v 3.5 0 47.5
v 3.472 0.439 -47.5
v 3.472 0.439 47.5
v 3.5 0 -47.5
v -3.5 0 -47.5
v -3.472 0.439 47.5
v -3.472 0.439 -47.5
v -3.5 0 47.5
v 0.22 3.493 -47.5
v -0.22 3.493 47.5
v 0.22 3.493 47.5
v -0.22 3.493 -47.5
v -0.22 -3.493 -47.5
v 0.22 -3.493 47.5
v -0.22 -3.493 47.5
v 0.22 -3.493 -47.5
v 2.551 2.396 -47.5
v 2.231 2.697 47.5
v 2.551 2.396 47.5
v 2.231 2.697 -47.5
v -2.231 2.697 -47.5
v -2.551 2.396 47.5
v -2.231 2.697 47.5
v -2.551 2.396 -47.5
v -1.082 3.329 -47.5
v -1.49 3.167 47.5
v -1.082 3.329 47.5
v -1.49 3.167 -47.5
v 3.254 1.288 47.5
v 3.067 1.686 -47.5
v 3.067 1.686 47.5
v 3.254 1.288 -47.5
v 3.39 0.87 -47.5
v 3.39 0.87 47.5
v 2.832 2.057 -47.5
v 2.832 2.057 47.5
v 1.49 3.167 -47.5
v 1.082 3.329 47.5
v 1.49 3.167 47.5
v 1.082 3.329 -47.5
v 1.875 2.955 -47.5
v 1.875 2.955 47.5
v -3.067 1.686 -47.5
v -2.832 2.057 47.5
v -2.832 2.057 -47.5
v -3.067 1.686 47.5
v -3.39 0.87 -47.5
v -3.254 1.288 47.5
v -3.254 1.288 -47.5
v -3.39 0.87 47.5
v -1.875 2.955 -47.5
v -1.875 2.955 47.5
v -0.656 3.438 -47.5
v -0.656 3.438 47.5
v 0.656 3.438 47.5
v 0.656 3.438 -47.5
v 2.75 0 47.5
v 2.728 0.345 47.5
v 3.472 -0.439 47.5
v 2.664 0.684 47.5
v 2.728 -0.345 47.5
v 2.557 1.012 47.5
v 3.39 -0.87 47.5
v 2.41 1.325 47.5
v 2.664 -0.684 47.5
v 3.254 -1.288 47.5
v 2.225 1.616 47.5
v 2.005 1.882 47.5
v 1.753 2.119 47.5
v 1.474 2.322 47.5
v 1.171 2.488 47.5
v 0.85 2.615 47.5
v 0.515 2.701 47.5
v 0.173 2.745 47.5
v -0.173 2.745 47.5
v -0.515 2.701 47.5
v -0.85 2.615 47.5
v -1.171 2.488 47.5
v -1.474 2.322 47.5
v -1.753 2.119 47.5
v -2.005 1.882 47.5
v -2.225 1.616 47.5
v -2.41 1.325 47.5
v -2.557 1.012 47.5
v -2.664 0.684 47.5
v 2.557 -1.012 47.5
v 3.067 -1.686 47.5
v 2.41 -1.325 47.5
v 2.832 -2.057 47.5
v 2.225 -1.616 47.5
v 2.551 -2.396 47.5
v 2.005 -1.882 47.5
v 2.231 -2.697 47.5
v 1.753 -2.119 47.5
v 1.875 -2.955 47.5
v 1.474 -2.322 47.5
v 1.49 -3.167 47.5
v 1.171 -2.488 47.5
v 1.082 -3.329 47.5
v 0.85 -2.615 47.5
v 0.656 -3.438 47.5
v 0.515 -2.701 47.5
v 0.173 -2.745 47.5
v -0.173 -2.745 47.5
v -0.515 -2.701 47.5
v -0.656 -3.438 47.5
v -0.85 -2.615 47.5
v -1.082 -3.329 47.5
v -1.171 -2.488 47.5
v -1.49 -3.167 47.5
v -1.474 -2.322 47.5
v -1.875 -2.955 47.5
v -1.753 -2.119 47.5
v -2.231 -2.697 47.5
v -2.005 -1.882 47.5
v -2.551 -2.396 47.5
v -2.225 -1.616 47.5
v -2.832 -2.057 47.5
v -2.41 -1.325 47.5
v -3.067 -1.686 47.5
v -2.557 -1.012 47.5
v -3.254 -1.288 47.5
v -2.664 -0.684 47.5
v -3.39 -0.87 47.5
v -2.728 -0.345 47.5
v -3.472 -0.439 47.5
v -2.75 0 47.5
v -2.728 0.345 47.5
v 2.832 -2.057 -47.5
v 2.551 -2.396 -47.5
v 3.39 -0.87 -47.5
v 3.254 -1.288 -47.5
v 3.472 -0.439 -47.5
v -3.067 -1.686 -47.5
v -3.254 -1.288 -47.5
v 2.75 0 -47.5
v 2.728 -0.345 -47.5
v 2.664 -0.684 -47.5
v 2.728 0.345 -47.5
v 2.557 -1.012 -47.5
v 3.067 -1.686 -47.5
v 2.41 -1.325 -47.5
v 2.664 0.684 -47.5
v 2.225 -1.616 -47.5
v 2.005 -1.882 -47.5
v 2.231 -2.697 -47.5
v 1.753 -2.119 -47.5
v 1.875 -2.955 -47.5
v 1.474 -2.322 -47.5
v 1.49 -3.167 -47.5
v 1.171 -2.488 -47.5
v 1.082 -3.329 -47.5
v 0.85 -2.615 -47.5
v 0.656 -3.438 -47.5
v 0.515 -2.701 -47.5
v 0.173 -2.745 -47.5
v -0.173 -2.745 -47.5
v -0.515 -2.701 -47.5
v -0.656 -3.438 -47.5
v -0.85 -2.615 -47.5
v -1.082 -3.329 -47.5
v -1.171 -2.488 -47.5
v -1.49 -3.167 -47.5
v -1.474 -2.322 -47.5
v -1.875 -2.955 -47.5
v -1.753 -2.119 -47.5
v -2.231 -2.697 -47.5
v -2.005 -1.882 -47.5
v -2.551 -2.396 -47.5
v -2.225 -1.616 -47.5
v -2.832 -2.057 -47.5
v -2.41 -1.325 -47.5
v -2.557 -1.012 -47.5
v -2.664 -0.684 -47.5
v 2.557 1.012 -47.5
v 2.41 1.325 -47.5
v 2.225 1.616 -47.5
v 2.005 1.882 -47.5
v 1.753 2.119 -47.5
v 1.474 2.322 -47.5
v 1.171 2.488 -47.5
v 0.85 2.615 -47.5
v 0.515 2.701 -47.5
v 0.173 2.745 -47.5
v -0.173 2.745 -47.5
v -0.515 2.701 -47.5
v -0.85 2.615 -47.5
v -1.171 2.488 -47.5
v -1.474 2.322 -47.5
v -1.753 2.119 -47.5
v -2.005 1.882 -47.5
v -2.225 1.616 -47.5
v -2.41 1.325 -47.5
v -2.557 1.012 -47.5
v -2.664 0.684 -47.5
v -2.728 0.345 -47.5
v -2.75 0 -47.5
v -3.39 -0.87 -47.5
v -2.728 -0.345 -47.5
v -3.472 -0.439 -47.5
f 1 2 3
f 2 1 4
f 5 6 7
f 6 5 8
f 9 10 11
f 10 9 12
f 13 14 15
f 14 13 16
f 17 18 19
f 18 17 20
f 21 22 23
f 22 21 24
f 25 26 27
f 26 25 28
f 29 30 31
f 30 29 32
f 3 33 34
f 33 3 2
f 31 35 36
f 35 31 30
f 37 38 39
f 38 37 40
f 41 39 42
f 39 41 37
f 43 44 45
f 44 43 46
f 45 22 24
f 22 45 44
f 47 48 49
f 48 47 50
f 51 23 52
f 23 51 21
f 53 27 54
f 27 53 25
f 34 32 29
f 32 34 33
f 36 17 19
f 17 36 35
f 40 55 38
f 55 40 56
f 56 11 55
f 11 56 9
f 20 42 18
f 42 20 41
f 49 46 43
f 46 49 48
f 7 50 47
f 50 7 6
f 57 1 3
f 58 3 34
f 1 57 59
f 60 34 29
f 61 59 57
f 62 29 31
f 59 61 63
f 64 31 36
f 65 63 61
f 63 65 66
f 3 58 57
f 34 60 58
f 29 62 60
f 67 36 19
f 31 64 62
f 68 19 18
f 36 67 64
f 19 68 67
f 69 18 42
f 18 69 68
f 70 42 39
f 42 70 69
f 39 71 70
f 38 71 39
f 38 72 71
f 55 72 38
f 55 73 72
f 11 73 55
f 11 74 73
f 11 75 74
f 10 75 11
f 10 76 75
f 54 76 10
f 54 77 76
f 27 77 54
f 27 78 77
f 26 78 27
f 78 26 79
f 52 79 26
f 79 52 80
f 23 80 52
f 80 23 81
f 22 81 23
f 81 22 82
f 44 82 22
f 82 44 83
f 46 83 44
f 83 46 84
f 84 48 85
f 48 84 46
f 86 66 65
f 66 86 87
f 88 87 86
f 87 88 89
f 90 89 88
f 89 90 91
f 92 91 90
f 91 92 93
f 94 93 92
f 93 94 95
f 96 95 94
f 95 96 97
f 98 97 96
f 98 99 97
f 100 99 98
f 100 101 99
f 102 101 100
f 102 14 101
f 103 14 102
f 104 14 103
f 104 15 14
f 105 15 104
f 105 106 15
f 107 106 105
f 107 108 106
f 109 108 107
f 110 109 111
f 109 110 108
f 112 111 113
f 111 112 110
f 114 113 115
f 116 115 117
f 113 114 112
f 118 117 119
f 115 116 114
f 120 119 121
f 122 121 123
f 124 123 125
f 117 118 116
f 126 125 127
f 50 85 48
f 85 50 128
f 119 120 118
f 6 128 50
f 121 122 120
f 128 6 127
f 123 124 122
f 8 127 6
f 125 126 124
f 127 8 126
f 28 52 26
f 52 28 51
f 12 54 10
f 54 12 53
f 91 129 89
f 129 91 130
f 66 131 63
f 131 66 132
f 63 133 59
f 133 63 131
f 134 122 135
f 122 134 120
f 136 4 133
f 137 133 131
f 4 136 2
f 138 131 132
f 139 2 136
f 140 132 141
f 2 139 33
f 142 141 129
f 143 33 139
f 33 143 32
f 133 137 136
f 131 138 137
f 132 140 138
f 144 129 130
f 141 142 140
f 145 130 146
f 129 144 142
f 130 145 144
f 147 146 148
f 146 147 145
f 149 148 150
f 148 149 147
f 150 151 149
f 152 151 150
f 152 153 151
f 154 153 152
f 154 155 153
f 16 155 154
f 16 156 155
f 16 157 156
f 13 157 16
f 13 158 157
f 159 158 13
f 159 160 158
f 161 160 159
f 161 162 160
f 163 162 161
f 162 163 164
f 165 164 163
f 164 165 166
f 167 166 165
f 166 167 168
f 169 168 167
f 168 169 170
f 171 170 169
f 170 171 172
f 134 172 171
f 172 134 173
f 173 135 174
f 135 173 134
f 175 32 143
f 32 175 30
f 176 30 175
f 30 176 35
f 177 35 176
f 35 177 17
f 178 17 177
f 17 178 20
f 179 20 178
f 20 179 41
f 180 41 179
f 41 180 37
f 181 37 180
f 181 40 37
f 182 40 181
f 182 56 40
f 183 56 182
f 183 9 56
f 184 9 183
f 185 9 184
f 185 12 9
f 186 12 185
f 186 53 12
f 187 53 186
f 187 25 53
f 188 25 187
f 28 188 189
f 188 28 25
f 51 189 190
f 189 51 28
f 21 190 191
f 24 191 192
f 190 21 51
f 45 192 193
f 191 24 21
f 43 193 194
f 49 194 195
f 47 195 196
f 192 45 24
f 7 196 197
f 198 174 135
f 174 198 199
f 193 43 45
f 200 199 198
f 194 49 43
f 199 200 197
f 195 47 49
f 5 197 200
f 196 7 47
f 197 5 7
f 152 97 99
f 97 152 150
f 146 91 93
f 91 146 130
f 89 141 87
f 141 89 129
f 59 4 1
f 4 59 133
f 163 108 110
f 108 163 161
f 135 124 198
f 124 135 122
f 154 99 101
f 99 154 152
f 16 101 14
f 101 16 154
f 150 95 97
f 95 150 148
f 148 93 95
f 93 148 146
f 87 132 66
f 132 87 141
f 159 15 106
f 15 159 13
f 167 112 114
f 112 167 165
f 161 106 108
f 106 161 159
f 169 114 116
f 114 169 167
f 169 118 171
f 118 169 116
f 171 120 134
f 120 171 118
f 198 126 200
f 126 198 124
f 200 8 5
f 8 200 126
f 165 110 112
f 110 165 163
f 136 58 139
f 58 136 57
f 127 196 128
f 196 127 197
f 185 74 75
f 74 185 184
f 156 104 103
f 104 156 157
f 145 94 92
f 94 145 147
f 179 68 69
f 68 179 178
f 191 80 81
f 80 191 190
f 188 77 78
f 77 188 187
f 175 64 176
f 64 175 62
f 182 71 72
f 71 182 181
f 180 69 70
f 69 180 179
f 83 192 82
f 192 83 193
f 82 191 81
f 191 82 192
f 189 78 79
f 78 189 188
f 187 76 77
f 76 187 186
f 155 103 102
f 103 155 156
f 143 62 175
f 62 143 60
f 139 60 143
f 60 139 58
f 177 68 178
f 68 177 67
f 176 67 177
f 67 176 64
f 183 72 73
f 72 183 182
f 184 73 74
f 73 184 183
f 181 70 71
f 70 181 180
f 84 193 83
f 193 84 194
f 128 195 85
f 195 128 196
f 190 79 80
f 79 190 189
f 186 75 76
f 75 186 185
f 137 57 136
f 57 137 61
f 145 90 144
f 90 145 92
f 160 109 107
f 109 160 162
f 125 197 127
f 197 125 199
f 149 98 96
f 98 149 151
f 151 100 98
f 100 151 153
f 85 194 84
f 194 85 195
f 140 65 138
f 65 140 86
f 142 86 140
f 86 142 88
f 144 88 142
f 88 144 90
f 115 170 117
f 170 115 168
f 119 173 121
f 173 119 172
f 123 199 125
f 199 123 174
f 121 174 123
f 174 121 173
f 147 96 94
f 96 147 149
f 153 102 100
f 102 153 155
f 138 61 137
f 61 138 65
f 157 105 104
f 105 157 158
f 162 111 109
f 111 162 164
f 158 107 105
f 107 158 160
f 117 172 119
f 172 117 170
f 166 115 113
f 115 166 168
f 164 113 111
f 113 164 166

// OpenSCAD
$fn = 50;


difference() {
	union() {
		translate(v = [0, 0, -47.5000000000]) {
			cylinder(h = 95, r = 3.5000000000);
		}
	}
	union() {
		translate(v = [0, 0, -100.0000000000]) {
			cylinder(h = 200, r = 2.7500000000);
		}
	}
}
